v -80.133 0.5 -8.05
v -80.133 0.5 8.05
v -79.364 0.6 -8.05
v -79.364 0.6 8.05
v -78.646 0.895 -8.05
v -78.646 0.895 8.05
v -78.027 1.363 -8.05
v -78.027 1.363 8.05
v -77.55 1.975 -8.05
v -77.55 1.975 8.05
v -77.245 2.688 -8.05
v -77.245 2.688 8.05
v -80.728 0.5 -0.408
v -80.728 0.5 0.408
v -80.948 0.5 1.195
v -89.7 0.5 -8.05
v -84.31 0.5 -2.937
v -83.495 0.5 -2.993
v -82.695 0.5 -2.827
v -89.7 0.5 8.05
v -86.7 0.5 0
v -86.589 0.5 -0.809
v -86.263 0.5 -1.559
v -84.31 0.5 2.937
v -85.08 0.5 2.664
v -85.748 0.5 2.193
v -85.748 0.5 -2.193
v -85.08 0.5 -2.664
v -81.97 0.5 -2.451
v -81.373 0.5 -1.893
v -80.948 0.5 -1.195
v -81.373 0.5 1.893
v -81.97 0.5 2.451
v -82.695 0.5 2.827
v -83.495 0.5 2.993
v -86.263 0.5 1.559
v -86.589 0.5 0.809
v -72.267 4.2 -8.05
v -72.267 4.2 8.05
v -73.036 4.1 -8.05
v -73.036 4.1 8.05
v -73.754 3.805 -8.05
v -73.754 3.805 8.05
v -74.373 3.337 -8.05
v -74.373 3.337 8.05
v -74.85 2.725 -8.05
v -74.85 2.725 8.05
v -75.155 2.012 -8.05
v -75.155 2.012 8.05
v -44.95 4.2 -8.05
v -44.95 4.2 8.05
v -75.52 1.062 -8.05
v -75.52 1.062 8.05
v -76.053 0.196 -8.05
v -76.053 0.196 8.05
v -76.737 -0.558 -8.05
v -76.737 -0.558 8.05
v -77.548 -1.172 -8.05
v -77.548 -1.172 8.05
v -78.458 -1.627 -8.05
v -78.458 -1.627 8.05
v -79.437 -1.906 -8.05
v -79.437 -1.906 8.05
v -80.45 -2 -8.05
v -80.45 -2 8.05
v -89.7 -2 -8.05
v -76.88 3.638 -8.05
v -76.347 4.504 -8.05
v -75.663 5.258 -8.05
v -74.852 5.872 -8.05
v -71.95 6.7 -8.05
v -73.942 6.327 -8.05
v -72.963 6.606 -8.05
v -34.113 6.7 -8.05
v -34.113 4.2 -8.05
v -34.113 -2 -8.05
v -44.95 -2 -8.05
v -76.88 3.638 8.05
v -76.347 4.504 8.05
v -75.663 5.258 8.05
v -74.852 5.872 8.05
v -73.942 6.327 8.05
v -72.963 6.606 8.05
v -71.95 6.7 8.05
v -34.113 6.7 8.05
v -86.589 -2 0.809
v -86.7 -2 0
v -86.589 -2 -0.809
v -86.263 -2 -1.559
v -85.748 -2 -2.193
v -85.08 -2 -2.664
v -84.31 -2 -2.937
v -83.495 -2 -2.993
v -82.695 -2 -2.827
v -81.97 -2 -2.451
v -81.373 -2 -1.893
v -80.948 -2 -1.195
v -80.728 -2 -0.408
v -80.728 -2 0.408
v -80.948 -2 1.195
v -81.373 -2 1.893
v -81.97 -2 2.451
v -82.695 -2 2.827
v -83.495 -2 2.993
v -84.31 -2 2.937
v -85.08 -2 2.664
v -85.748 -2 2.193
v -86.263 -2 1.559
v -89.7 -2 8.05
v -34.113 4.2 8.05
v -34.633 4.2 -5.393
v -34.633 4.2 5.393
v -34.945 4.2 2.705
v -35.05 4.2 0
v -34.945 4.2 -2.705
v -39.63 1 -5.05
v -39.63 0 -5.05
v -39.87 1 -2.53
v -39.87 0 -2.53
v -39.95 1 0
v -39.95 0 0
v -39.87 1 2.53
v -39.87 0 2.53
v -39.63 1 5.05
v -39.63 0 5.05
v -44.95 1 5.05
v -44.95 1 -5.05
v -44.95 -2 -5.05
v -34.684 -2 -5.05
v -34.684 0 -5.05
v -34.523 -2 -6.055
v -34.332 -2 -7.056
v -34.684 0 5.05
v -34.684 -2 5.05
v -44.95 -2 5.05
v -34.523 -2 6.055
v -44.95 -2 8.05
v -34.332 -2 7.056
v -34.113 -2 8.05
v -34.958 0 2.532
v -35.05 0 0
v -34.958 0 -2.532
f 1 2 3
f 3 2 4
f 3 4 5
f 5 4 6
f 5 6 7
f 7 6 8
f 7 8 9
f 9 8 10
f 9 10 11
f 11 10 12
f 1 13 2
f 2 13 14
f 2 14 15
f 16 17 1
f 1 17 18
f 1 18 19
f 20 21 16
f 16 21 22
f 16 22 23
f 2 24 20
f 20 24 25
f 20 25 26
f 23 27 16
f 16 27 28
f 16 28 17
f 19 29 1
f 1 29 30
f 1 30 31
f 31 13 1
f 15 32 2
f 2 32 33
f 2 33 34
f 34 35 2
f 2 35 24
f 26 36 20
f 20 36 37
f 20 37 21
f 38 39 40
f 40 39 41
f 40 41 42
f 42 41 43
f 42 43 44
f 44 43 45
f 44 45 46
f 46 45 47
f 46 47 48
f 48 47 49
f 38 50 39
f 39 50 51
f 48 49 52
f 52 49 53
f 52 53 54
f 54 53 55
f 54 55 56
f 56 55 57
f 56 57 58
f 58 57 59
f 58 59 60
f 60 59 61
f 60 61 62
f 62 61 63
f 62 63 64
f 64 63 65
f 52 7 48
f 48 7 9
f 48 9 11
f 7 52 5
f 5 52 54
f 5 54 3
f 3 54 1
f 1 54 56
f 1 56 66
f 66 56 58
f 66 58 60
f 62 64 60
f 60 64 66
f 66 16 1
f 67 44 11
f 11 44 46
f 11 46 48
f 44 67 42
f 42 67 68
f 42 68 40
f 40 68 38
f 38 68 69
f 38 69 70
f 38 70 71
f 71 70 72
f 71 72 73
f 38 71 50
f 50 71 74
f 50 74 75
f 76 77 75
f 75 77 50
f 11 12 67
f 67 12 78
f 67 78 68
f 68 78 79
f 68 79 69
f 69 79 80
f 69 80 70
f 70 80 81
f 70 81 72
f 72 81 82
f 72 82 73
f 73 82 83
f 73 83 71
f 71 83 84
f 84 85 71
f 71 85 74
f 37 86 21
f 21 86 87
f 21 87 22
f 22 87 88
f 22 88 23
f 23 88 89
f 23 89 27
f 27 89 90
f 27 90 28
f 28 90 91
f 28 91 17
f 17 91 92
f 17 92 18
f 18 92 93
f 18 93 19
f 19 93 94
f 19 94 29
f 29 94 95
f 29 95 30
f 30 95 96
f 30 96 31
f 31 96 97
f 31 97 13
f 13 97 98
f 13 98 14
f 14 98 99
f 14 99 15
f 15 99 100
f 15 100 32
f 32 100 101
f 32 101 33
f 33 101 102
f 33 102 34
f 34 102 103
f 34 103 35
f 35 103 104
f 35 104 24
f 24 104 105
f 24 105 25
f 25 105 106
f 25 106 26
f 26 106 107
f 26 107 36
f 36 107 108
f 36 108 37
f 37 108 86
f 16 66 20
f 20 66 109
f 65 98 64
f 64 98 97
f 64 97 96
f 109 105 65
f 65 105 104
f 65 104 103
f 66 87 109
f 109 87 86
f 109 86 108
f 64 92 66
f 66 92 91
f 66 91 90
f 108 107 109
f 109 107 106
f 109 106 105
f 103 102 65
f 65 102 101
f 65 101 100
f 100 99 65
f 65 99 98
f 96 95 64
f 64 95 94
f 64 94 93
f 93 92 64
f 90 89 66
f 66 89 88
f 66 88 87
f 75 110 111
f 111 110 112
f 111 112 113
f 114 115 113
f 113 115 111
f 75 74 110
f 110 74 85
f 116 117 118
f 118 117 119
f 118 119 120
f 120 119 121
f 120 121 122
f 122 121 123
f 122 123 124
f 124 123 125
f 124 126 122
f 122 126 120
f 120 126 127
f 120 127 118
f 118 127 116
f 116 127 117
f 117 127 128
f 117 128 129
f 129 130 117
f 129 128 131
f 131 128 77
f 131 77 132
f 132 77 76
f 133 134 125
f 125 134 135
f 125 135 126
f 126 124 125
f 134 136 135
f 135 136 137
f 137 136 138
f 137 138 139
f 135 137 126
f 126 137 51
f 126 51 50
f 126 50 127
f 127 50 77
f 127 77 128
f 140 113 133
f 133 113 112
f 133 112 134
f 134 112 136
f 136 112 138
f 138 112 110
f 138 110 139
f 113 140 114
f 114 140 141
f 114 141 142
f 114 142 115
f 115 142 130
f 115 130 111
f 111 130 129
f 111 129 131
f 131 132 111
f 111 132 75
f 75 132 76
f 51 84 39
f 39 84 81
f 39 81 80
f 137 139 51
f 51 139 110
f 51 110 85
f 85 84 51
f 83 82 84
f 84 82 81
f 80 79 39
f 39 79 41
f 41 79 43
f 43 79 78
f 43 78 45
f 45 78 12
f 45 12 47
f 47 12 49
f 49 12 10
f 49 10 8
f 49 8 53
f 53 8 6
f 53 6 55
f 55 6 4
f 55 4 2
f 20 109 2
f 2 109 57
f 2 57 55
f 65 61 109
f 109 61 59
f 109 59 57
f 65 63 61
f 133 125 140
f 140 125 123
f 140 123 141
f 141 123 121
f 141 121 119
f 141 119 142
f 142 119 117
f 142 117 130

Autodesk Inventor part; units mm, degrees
ref_plane "YZ Plane" through (0, 0, 0) normal (1, 0, 0) x (0, 1, 0)
ref_plane "XZ Plane" through (0, 0, 0) normal (0, 1, 0) x (-1, 0, 0)
ref_plane "XY Plane" through (0, 0, 0) normal (0, 0, 1) x (1, 0, 0)
sketch "Sketch1" plane through (0, 0, 0) normal (0, 1, 0) x (-1, 0, 0)
  circle A0 centre (0, 0) radius 39.95
  circle A1 centre (0, 0) radius 35.05
  line L0 (0, 0) -> (0, -5.05)
  line L1 (0, -5.05) -> (60, -5.05)
  line L2 (60, -5.05) -> (60, 5.05)
  line L3 (60, 5.05) -> (0, 5.05)
  line L4 (0, 5.05) -> (0, -5.05)
  line L5 (0, -5.05) -> (60, -5.05)
  line L6 (60, -5.05) -> (60, -8.05)
  line L7 (60, -8.05) -> (0, -8.05)
  line L8 (0, -8.05) -> (0, -5.05)
  line L9 (0, 5.05) -> (60, 5.05)
  line L10 (60, 5.05) -> (60, 8.05)
  line L11 (60, 8.05) -> (0, 8.05)
  line L12 (0, 8.05) -> (0, 5.05)
  line L13 (39.95, 0) -> (44.95, 0)
  line L14 (44.95, 0) -> (44.95, -8.05)
  line L15 (44.95, 0) -> (44.95, 8.05)
  point P0 (34.113, 8.05)
  point P1 (34.113, -8.05)
  point P2 (44.95, -5.05)
  point P3 (34.6843, -5.05)
  point P4 (34.6843, 5.05)
  point P5 (44.95, 5.05)
  point P6 (39.6295, 5.05)
  point P7 (39.6295, -5.05)
  dimension "d0" = 79.9
  dimension "d1" = 70.1
  dimension "d2" = 5.05
  dimension "d3" = 60
  dimension "d4" = 10.1
  dimension "d5" = 60
  dimension "d6" = 3
  dimension "d7" = 60
  dimension "d8" = 3
  dimension "d9" = 5
extrude "Extrusion1" add sketch "Sketch1" along normal blind 4.2 contours A0 L1 A1 L3 | L13 L14 L1 A0 | A0 L3 L15 L13 | L3 A1 L11 A0 | A0 L11 L15 L3 | L1 L14 L7 A0 | A0 L7 A1 L1
extrude "Extrusion2" add sketch "Sketch1" against normal blind 2 contours L3 A1 L11 A0 | A0 L11 L15 L3 | L1 L14 L7 A0 | A0 L7 A1 L1
extrude "Extrusion3" cut sketch "Sketch1" along normal blind 1 contours L13 L14 L1 A0 | A0 L3 L15 L13
sketch "Sketch4" plane through (-44.95, 4.2, 8.05) normal (0, 0, 1) x (1, 0, 0)
  line L0 (0, 0) -> (10.837, 0) projected
  line L1 (10.837, 0) -> (0, 0)
  line L2 (0, 0) -> (0, 2.5)
  line L3 (0, 2.5) -> (10.837, 2.5)
  line L4 (10.837, 2.5) -> (10.837, 0)
  line L5 (0, 2.5) -> (-30, 2.5)
  line L6 (-30, 2.5) -> (-30, 0)
  line L7 (-30, 0) -> (0, 0)
  line L8 (0, 0) -> (0, 2.5)
  line L9 (-30, 2.5) -> (-32.5, 2.5)
  line L10 (-32.5, 2.5) -> (-32.5, -6.2)
  line L11 (-32.5, -6.2) -> (-30, -6.2)
  line L12 (-30, -6.2) -> (-30, 2.5)
  line L13 (-32.5, -6.2) -> (-44.75, -6.2)
  line L14 (-44.75, -6.2) -> (-44.75, -3.7)
  line L15 (-44.75, -3.7) -> (-32.5, -3.7)
  line L16 (-32.5, -3.7) -> (-32.5, -6.2)
  point P0 (44.95, -4.2)
  point P1 (-30, 0)
  point P2 (-32.5, -3.7)
  dimension "d26" = 2.5
  dimension "d27" = 30
  dimension "d28" = 2.5
  dimension "d29" = 8.7
  dimension "d30" = 2.5
  dimension "d31" = 12.25
extrude "Extrusion6" add sketch "Sketch4" against normal up to surface (16.1 mm away)
sketch "Sketch5" plane through (-74.95, 4.2, 8.05) normal (0, -1, 0) x (1, 0, 0)
  line L0 (30, -16.1) -> (30, 0) projected
  line L1 (30, -8.05) -> (-8.75, -8.05)
  circle A0 centre (-8.75, -8.05) radius 3
  point P0 (74.95, -8.05)
  dimension "d34" = 38.75
  dimension "d35" = 6
extrude "Extrusion7" cut sketch "Sketch5" along normal blind 10
fillet "Fillet1" radius 5.5 2 edges at (-77.45, 6.7, 0) (-74.95, -2, 0)
fillet "Fillet2" radius 3 2 edges at (-74.95, 4.2, 0) (-77.45, 0.5, 0)
properties part number "measuring_support1"
